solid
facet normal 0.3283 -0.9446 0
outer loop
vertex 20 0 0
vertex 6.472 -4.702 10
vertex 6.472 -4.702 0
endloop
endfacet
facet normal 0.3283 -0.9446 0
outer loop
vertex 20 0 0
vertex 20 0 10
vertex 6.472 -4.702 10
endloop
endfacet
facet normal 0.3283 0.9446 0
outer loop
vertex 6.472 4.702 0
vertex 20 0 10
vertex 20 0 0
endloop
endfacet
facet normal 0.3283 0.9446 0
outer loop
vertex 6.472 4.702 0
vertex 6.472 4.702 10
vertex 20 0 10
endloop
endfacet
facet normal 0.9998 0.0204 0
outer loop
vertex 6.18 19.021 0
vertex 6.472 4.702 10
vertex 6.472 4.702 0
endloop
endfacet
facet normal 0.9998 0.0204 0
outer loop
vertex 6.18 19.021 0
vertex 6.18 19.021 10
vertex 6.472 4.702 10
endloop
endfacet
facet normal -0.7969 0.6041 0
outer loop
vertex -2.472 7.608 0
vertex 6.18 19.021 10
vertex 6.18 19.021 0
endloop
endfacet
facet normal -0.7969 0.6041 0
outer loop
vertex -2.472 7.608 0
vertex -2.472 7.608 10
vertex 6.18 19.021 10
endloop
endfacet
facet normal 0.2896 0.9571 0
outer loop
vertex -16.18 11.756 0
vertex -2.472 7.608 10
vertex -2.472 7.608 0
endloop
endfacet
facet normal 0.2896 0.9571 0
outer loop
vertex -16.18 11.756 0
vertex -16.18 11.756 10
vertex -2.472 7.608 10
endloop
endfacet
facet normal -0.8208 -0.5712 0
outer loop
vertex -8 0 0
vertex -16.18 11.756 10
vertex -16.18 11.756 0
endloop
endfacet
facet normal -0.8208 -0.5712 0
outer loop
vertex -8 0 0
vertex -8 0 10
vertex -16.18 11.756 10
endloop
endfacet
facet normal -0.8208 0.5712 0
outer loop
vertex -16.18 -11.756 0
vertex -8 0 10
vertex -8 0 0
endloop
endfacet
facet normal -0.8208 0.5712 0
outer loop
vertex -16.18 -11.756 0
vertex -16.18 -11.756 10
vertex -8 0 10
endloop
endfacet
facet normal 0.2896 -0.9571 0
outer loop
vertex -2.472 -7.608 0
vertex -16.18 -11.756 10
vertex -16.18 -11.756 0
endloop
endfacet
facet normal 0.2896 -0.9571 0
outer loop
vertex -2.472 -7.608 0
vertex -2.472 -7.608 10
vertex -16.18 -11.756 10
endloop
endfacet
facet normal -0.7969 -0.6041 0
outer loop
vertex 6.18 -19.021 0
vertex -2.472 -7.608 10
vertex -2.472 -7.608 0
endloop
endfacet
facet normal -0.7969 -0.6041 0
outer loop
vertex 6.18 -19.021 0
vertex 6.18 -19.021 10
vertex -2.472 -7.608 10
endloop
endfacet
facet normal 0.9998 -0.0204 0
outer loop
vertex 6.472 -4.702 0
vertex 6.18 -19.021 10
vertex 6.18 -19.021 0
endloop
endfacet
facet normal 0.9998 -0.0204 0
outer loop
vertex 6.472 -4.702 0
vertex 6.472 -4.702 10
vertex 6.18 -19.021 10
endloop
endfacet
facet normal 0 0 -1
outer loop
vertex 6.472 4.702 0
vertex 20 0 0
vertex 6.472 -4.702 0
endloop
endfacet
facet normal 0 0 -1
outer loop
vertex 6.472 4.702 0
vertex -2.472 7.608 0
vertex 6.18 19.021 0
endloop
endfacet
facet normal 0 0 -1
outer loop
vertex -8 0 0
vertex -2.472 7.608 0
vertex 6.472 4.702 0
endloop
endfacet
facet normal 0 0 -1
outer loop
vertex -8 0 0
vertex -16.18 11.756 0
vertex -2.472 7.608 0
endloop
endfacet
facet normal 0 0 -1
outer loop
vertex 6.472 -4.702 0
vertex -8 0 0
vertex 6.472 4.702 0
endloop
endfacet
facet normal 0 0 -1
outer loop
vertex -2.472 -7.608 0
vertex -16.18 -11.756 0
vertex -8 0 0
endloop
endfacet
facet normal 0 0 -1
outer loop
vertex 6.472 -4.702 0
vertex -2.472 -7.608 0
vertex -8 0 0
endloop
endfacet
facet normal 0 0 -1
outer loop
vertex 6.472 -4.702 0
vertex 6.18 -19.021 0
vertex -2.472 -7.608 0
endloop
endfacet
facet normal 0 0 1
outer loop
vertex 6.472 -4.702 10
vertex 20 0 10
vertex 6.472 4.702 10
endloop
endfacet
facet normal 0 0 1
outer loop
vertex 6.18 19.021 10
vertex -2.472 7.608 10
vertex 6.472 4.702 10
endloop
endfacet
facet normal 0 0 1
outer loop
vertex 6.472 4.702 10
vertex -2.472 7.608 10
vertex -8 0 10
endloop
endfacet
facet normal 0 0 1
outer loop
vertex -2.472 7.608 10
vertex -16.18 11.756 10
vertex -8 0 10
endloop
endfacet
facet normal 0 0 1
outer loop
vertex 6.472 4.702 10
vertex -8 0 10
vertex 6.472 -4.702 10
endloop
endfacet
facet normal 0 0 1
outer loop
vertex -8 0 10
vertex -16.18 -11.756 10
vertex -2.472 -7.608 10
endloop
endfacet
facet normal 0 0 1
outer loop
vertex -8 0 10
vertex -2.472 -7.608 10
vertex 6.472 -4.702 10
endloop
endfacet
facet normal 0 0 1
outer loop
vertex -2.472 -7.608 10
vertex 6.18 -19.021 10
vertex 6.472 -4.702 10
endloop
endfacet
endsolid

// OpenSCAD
// Parametric star
points = 5;
outer_radius = 20;
inner_radius = 8;

module star(points, outer, inner) {
    angle = 360 / points;
    
    polygon(points = [
        for (i = [0:points-1]) each [
            [outer * cos(i * angle), outer * sin(i * angle)],
            [inner * cos((i + 0.5) * angle), inner * sin((i + 0.5) * angle)]
        ]
    ]);
}

linear_extrude(height = 10)
    star(points, outer_radius, inner_radius);
